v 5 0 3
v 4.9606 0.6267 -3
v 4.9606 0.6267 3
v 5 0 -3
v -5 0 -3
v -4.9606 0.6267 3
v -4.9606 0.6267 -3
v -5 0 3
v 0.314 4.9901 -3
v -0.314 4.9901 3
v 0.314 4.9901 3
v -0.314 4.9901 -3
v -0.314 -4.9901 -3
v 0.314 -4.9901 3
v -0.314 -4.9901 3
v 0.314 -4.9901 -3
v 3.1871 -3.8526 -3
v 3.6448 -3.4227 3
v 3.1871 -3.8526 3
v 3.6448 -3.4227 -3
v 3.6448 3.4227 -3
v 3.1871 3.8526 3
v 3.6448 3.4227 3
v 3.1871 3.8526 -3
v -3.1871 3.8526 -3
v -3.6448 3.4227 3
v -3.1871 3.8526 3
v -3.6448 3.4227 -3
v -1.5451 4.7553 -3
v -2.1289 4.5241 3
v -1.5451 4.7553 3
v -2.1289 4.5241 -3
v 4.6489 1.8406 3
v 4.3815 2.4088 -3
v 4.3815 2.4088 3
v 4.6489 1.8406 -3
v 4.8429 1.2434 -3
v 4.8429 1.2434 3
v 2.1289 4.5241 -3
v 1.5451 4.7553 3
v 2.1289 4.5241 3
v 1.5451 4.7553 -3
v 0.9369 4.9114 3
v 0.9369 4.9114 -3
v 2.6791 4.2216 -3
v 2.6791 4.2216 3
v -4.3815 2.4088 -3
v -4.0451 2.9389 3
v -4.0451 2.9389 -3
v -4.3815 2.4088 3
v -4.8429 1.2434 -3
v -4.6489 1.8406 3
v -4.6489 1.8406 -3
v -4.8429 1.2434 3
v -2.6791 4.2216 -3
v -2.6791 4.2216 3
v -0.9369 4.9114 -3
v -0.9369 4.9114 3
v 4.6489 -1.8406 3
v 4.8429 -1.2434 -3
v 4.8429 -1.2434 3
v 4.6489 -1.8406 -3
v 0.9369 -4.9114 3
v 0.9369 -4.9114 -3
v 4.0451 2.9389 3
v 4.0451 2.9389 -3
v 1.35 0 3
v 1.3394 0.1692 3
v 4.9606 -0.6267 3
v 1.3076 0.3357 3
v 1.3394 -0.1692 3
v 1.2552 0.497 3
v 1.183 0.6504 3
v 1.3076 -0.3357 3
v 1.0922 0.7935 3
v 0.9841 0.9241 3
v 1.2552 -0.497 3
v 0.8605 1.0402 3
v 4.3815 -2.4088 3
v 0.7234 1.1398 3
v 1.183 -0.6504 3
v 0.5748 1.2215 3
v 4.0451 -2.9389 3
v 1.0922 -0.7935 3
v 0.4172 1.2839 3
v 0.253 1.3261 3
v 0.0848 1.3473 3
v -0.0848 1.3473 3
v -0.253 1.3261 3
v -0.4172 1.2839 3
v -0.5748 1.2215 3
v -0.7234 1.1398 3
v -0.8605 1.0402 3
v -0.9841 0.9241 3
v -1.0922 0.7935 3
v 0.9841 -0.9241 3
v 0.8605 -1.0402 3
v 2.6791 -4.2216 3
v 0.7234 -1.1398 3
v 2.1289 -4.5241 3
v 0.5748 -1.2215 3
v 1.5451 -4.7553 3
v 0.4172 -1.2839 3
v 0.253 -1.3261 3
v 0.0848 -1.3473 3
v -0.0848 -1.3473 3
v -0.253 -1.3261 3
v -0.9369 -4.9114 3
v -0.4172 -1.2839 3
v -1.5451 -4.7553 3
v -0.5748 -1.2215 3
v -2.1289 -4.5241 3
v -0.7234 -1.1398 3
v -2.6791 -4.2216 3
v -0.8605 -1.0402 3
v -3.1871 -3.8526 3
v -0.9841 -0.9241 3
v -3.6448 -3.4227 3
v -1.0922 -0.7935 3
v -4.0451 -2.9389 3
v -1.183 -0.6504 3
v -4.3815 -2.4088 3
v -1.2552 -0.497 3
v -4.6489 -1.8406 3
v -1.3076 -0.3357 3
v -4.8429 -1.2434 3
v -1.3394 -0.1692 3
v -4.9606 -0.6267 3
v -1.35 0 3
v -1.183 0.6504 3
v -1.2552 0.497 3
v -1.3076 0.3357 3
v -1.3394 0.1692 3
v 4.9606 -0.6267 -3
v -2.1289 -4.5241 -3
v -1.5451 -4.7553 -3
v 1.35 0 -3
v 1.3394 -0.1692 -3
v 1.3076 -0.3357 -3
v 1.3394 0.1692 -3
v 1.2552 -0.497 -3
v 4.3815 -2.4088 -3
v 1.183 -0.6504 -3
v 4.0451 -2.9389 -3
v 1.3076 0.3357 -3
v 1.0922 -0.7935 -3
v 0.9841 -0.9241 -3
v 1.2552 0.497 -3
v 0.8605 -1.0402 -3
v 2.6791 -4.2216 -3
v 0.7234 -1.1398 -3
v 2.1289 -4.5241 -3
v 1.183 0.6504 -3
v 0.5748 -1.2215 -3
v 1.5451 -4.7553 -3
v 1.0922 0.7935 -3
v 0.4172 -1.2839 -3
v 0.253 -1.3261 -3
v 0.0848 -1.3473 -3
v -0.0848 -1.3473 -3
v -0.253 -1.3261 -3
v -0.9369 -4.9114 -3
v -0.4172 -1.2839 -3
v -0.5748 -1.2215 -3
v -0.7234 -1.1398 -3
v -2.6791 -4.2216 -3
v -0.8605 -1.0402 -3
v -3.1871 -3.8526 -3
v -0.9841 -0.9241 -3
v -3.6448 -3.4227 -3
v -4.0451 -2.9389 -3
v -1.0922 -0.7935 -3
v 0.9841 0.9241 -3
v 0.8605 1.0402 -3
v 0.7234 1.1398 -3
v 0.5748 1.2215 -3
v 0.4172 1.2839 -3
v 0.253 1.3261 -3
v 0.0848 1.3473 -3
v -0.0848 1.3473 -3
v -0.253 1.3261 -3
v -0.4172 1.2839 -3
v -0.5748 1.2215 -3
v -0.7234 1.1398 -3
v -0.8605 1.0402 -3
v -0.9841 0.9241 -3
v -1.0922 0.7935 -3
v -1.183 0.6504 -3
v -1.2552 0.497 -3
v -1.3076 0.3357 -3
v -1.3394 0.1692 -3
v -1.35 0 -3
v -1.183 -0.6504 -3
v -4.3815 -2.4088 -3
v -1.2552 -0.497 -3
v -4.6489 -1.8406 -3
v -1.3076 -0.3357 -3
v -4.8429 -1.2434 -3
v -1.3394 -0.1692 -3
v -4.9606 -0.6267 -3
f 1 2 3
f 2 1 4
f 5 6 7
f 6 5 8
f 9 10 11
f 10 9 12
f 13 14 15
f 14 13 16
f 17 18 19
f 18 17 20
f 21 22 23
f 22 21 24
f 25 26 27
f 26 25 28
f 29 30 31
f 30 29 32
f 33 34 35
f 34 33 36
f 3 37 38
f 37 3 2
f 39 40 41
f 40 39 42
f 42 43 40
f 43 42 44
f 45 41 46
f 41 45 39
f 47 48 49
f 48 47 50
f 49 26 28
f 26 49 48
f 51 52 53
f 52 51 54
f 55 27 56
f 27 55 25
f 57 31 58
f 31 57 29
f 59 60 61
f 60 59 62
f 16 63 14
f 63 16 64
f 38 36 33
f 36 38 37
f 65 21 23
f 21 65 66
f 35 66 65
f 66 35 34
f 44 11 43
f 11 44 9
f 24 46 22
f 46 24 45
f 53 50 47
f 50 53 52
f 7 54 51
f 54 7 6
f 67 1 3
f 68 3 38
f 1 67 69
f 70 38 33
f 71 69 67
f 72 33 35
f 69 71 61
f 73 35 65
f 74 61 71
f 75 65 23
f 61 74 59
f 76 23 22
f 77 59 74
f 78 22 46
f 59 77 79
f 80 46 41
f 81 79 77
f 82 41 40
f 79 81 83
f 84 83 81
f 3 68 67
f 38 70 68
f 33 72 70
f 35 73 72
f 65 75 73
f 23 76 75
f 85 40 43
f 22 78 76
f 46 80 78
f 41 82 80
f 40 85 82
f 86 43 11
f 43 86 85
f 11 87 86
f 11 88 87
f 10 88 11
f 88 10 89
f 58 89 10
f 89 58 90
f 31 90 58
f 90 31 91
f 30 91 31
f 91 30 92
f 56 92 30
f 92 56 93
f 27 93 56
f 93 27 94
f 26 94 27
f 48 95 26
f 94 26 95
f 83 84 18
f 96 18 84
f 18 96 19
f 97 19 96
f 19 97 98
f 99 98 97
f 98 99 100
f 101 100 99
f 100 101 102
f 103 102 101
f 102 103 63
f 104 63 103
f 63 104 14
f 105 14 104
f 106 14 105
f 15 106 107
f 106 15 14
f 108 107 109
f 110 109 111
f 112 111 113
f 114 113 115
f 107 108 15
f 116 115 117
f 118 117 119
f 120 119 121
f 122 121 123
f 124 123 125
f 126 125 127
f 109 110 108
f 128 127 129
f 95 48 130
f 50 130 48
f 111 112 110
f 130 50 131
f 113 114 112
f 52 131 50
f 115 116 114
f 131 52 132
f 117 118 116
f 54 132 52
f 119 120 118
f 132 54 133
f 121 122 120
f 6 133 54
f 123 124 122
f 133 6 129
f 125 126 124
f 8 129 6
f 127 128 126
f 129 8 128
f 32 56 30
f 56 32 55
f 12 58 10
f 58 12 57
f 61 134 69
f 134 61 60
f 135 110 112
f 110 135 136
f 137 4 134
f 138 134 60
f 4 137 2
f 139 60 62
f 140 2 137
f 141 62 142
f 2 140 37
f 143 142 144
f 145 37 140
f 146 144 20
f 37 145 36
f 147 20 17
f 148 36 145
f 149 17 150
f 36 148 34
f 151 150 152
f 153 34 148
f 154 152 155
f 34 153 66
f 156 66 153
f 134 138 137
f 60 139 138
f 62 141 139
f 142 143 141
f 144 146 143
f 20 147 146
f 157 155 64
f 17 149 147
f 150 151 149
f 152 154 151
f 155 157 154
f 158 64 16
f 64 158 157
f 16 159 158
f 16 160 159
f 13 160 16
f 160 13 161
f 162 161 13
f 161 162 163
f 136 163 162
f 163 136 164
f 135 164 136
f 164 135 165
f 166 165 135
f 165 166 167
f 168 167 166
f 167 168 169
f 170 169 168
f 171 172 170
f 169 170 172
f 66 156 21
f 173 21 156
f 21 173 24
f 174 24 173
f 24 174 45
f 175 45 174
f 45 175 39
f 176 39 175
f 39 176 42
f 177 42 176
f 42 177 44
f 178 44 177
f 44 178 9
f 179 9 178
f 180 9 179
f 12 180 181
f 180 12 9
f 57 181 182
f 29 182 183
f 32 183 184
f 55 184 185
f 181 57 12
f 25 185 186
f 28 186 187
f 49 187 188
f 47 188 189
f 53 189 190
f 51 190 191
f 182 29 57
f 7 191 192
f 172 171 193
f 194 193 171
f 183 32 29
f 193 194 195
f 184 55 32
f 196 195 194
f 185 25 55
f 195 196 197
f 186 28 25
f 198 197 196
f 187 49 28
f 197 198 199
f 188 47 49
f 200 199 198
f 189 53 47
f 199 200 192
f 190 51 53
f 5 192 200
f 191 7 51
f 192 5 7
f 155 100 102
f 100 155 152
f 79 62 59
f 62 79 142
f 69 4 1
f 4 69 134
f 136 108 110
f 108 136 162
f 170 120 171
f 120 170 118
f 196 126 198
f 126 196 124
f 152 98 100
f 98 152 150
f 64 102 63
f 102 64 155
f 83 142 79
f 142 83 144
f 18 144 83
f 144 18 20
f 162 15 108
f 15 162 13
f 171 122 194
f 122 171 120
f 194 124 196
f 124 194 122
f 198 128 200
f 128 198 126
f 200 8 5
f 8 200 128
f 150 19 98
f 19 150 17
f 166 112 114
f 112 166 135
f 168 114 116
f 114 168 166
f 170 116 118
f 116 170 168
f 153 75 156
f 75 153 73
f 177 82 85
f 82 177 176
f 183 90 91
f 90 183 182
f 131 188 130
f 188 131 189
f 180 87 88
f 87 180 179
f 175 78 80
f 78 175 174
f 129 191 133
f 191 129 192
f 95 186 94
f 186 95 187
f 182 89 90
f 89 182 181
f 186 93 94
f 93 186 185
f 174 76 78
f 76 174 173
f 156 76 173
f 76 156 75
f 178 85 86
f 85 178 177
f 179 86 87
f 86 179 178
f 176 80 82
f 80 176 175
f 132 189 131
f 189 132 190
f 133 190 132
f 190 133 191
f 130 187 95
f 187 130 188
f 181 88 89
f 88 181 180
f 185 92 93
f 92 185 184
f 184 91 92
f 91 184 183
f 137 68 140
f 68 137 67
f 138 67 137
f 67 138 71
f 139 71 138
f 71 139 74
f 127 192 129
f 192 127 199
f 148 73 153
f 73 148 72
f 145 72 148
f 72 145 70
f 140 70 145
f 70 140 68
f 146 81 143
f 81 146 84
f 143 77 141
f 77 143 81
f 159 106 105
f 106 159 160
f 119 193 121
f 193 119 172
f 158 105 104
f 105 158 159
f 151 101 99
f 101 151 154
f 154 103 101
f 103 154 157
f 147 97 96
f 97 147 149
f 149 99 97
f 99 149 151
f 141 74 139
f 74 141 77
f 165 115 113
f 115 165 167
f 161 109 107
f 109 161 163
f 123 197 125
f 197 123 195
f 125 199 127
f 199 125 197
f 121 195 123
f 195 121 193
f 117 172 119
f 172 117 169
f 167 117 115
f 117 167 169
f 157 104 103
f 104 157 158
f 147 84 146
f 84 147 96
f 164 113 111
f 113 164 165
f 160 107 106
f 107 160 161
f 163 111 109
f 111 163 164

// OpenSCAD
$fn = 50;


difference() {
	union() {
		translate(v = [0, 0, -3.0000000000]) {
			cylinder(h = 6, r = 5.0000000000);
		}
	}
	union() {
		translate(v = [0, 0, -100.0000000000]) {
			cylinder(h = 200, r = 1.3500000000);
		}
	}
}
